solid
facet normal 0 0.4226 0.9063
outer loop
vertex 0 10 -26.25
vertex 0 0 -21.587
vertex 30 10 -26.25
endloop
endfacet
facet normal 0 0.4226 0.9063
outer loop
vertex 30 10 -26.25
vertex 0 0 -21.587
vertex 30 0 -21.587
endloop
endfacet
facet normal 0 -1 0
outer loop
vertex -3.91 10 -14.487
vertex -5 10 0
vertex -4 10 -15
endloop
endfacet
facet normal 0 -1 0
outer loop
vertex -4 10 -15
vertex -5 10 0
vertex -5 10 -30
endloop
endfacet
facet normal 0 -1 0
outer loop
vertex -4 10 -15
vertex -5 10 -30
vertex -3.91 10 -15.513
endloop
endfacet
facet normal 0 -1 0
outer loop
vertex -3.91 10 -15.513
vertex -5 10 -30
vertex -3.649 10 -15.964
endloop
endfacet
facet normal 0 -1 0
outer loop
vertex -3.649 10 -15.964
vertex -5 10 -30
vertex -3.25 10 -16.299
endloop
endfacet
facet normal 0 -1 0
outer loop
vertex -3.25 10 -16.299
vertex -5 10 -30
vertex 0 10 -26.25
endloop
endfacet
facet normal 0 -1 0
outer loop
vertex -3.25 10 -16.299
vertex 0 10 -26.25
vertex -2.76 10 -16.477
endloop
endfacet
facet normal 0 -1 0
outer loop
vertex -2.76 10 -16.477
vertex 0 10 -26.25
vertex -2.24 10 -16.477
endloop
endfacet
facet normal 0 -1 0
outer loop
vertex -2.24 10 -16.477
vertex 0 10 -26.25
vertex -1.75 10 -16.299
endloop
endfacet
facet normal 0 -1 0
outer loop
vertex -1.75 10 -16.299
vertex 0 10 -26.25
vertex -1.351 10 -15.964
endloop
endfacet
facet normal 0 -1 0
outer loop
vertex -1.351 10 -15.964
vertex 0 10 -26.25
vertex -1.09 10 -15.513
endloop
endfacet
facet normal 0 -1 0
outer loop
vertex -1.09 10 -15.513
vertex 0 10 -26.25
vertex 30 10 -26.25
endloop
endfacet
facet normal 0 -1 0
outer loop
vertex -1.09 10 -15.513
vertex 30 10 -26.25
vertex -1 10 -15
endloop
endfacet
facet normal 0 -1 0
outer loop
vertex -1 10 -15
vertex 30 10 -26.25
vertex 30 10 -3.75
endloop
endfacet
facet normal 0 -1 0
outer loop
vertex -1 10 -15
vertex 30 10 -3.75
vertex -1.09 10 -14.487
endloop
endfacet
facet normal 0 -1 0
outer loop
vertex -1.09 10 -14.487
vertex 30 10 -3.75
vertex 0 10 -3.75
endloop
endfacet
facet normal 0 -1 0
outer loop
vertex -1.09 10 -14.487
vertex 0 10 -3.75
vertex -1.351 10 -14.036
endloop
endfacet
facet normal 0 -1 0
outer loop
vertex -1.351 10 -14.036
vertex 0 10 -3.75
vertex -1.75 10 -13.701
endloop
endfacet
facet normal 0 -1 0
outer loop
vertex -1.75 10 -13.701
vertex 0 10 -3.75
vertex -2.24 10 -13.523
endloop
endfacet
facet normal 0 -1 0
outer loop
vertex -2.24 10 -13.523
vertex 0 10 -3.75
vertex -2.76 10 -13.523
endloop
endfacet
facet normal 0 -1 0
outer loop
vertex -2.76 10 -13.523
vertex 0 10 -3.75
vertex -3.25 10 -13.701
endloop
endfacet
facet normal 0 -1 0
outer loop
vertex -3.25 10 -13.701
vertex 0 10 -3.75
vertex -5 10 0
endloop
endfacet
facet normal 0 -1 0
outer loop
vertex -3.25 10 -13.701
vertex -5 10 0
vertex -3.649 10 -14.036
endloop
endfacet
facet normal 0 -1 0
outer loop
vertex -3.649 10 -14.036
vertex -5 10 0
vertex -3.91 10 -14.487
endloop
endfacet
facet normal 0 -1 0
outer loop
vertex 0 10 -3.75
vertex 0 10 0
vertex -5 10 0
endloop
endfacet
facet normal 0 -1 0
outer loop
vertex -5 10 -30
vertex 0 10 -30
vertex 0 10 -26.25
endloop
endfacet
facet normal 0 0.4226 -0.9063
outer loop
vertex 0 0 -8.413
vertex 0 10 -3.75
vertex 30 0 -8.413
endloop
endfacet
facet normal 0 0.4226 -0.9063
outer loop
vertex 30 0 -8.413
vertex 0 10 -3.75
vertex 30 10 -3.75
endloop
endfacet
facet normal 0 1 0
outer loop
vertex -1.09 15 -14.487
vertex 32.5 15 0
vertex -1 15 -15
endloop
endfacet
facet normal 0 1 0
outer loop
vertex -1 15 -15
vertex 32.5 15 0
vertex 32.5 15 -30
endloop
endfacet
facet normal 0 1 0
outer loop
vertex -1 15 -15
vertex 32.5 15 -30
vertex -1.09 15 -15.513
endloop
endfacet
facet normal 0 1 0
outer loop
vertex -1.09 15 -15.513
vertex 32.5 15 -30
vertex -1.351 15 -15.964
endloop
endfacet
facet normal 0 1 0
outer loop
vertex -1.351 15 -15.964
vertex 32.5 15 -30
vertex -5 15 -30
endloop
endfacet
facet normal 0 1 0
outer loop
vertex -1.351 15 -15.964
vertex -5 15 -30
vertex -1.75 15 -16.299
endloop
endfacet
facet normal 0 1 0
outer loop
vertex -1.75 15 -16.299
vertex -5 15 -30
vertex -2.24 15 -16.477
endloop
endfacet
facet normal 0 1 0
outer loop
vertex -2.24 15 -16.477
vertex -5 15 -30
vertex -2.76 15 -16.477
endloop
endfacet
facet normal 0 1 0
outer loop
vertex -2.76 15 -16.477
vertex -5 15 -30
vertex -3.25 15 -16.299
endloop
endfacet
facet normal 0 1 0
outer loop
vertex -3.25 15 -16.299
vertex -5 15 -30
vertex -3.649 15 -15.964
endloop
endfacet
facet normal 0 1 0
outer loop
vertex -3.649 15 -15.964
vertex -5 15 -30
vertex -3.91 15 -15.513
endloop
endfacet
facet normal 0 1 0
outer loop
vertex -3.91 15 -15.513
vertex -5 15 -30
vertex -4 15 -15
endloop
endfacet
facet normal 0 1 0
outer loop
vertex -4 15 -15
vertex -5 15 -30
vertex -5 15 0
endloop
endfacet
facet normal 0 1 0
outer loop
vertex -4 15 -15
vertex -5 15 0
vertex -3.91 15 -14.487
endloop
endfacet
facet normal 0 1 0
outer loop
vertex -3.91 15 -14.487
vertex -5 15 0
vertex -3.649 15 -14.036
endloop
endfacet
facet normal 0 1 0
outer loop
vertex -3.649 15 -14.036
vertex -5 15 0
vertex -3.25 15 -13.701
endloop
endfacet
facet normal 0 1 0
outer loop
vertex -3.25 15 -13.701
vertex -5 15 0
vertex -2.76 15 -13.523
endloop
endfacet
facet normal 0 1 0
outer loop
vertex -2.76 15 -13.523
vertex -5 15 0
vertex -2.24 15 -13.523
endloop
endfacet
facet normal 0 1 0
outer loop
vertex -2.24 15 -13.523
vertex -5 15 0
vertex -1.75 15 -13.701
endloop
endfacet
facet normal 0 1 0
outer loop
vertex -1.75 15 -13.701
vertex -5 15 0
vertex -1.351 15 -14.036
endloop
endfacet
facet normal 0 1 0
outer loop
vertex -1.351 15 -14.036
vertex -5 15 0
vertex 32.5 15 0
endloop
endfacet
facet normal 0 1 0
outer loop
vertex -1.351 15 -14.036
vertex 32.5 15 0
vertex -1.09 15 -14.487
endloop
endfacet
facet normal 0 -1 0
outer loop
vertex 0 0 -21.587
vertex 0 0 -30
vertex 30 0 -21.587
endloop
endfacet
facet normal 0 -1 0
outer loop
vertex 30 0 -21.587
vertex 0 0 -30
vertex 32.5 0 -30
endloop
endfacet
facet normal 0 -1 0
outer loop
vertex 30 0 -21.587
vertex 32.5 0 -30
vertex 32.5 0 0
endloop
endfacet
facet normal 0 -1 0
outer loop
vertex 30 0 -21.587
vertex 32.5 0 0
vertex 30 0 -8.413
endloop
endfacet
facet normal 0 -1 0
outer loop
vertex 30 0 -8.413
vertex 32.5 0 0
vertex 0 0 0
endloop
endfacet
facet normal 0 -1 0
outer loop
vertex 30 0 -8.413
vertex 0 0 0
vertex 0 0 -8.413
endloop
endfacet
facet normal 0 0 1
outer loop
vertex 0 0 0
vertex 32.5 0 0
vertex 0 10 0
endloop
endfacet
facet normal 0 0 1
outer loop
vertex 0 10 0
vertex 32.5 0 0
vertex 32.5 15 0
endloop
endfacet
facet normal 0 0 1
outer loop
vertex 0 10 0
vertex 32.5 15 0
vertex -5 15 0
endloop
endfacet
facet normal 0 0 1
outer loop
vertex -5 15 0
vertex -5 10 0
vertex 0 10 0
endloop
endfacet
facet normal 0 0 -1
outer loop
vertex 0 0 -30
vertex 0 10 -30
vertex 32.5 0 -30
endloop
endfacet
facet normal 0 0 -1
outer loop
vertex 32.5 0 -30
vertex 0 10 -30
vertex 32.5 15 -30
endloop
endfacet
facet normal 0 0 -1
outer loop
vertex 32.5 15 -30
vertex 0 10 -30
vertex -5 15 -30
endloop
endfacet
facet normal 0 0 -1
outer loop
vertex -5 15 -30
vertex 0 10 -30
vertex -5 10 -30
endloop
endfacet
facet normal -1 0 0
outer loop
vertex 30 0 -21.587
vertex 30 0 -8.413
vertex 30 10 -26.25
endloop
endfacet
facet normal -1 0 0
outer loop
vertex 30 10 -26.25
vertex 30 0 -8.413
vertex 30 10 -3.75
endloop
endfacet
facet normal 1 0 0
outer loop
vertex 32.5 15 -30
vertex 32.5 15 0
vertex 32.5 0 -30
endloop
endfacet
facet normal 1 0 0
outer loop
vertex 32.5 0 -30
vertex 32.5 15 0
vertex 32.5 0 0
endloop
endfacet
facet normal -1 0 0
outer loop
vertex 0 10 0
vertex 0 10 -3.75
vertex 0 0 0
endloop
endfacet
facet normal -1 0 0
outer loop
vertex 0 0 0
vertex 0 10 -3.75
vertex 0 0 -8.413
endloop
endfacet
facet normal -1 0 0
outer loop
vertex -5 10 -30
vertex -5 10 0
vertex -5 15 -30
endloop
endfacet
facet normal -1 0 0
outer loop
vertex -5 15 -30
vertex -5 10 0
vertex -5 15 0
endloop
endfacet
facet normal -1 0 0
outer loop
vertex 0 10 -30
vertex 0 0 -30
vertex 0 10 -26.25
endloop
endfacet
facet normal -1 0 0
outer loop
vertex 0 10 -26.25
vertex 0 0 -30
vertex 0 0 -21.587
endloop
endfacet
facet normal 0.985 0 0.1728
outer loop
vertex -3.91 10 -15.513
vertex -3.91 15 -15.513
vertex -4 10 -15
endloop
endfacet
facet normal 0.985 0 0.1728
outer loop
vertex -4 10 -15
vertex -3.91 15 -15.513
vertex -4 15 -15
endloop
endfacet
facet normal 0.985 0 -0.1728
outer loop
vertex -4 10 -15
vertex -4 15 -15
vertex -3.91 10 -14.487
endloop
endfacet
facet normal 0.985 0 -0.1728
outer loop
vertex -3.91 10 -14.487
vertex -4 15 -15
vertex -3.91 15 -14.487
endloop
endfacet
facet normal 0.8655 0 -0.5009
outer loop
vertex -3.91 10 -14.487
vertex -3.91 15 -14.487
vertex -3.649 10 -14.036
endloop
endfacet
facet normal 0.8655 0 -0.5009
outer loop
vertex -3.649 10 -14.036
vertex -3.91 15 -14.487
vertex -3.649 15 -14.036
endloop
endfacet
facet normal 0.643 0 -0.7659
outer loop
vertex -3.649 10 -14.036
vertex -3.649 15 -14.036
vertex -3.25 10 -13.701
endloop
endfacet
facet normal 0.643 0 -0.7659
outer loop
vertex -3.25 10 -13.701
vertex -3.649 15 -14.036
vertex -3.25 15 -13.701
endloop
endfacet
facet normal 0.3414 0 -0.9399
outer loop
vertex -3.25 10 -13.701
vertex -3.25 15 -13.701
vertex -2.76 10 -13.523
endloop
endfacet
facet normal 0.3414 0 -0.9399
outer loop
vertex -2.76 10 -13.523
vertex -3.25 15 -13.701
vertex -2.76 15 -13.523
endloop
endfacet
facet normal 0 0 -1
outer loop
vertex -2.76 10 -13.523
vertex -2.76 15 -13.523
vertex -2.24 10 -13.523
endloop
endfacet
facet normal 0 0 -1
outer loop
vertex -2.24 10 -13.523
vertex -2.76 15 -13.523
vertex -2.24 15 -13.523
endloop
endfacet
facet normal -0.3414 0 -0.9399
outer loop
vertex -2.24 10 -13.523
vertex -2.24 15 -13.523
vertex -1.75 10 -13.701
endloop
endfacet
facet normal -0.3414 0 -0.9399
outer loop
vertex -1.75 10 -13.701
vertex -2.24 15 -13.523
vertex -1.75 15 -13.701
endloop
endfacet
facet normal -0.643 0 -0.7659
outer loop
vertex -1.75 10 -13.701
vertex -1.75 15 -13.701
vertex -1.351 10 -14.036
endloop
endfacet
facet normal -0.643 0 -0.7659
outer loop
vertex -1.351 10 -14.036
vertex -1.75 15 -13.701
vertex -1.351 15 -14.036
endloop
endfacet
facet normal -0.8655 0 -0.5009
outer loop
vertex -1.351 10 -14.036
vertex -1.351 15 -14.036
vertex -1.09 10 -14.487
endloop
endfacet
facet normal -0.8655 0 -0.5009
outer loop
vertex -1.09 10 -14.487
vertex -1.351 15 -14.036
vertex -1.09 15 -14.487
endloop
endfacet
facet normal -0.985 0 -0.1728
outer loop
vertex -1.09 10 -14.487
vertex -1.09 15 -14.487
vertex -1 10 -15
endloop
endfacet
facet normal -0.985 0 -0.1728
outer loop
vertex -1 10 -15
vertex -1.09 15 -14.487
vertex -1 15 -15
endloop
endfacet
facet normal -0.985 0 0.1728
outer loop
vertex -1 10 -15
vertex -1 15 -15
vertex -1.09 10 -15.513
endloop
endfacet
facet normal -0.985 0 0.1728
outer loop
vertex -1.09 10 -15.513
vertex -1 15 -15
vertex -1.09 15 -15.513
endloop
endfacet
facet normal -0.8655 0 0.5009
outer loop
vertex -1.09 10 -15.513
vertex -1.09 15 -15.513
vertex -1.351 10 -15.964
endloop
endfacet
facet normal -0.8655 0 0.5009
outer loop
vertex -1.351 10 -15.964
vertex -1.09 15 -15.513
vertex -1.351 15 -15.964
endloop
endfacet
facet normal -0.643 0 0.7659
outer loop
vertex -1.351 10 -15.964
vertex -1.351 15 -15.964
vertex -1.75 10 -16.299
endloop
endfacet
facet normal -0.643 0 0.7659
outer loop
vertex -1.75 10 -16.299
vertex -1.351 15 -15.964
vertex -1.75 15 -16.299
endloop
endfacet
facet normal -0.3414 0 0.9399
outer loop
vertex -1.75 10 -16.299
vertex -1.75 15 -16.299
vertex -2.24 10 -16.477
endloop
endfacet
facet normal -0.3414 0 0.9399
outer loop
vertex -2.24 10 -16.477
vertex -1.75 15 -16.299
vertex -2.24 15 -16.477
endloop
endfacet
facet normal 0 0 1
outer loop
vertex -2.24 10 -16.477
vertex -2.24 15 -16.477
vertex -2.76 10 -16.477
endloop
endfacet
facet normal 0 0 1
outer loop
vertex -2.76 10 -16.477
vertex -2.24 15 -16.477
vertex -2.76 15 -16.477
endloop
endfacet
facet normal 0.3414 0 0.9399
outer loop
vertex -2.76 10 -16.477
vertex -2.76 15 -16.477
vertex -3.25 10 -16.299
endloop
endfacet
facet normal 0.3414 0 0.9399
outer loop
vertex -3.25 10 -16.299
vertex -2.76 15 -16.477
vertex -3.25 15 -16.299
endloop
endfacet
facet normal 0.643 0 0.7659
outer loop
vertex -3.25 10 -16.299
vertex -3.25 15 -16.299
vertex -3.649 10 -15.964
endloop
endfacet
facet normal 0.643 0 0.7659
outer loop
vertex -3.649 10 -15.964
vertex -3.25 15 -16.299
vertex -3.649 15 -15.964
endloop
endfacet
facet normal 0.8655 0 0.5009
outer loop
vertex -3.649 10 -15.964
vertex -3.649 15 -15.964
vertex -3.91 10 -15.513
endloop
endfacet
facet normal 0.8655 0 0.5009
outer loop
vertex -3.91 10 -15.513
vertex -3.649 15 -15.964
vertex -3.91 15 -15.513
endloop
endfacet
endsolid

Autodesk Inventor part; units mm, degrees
ref_plane "YZ Plane" through (0, 0, 0) normal (1, 0, 0) x (0, 1, 0)
ref_plane "XZ Plane" through (0, 0, 0) normal (0, 1, 0) x (-1, 0, 0)
ref_plane "XY Plane" through (0, 0, 0) normal (0, 0, 1) x (1, 0, 0)
sketch "Sketch1" plane through (0, 0, 0) normal (1, 0, 0) x (0, 1, 0)
  line L0 (0, 0) -> (15, 0)
  line L1 (15, 0) -> (15, -30)
  line L2 (15, -30) -> (0, -30)
  line L3 (0, -30) -> (0, 0)
  line L4 (0, -8.4131) -> (10, -3.75)
  line L5 (10, -3.75) -> (10, -26.25)
  line L6 (10, -26.25) -> (0, -21.5869)
  point P0 (10, -15)
  point P1 (0, -15)
  dimension "d0" = 15
  dimension "d1" = 30
  dimension "d2" = 10
  dimension "d3" = 22.5
  dimension "d4" = 65
  dimension "d5" = 65
extrude "Extrusion1" add sketch "Sketch1" along normal blind 30 contours L0 L1 L2 L3 L6 L5 L4
sketch "Sketch2" plane through (30, 0, 0) normal (1, 0, 0) x (0, 0, -1)
  line L0 (0, 15) -> (0, 0) projected
  line L1 (21.5869, 0) -> (30, 0) projected
  line L2 (0, 15) -> (30, 15)
  line L3 (30, 15) -> (30, 0)
  line L4 (30, 0) -> (0, 0)
  line L5 (0, 0) -> (0, 15)
extrude "Extrusion2" add sketch "Sketch2" along normal blind 2.5
sketch "Sketch3" plane through (0, 0, 0) normal (-1, 0, 0) x (0, 0, 1)
  line L0 (-30, 0) -> (-30, 15) projected
  line L1 (0, 15) -> (0, 0) projected
  line L2 (-30, 15) -> (0, 15)
  line L3 (0, 15) -> (0, 10)
  line L4 (0, 10) -> (-30, 10)
  line L5 (-30, 10) -> (-30, 15)
  dimension "d10" = 5
extrude "Extrusion3" add sketch "Sketch3" along normal blind 5
sketch "Sketch4" plane through (32.5, 15, 0) normal (0, 1, 0) x (1, 0, 0)
  line L0 (-32.5, 0) -> (-37.5, 0) projected
  line L1 (-32.5, 0) -> (-32.5, 30) construction
  circle A0 centre (-35, 15) radius 1.5
  dimension "d13" = 3
extrude "Extrusion4" cut sketch "Sketch4" against normal through all
properties part number "Top Sensor Mount"
